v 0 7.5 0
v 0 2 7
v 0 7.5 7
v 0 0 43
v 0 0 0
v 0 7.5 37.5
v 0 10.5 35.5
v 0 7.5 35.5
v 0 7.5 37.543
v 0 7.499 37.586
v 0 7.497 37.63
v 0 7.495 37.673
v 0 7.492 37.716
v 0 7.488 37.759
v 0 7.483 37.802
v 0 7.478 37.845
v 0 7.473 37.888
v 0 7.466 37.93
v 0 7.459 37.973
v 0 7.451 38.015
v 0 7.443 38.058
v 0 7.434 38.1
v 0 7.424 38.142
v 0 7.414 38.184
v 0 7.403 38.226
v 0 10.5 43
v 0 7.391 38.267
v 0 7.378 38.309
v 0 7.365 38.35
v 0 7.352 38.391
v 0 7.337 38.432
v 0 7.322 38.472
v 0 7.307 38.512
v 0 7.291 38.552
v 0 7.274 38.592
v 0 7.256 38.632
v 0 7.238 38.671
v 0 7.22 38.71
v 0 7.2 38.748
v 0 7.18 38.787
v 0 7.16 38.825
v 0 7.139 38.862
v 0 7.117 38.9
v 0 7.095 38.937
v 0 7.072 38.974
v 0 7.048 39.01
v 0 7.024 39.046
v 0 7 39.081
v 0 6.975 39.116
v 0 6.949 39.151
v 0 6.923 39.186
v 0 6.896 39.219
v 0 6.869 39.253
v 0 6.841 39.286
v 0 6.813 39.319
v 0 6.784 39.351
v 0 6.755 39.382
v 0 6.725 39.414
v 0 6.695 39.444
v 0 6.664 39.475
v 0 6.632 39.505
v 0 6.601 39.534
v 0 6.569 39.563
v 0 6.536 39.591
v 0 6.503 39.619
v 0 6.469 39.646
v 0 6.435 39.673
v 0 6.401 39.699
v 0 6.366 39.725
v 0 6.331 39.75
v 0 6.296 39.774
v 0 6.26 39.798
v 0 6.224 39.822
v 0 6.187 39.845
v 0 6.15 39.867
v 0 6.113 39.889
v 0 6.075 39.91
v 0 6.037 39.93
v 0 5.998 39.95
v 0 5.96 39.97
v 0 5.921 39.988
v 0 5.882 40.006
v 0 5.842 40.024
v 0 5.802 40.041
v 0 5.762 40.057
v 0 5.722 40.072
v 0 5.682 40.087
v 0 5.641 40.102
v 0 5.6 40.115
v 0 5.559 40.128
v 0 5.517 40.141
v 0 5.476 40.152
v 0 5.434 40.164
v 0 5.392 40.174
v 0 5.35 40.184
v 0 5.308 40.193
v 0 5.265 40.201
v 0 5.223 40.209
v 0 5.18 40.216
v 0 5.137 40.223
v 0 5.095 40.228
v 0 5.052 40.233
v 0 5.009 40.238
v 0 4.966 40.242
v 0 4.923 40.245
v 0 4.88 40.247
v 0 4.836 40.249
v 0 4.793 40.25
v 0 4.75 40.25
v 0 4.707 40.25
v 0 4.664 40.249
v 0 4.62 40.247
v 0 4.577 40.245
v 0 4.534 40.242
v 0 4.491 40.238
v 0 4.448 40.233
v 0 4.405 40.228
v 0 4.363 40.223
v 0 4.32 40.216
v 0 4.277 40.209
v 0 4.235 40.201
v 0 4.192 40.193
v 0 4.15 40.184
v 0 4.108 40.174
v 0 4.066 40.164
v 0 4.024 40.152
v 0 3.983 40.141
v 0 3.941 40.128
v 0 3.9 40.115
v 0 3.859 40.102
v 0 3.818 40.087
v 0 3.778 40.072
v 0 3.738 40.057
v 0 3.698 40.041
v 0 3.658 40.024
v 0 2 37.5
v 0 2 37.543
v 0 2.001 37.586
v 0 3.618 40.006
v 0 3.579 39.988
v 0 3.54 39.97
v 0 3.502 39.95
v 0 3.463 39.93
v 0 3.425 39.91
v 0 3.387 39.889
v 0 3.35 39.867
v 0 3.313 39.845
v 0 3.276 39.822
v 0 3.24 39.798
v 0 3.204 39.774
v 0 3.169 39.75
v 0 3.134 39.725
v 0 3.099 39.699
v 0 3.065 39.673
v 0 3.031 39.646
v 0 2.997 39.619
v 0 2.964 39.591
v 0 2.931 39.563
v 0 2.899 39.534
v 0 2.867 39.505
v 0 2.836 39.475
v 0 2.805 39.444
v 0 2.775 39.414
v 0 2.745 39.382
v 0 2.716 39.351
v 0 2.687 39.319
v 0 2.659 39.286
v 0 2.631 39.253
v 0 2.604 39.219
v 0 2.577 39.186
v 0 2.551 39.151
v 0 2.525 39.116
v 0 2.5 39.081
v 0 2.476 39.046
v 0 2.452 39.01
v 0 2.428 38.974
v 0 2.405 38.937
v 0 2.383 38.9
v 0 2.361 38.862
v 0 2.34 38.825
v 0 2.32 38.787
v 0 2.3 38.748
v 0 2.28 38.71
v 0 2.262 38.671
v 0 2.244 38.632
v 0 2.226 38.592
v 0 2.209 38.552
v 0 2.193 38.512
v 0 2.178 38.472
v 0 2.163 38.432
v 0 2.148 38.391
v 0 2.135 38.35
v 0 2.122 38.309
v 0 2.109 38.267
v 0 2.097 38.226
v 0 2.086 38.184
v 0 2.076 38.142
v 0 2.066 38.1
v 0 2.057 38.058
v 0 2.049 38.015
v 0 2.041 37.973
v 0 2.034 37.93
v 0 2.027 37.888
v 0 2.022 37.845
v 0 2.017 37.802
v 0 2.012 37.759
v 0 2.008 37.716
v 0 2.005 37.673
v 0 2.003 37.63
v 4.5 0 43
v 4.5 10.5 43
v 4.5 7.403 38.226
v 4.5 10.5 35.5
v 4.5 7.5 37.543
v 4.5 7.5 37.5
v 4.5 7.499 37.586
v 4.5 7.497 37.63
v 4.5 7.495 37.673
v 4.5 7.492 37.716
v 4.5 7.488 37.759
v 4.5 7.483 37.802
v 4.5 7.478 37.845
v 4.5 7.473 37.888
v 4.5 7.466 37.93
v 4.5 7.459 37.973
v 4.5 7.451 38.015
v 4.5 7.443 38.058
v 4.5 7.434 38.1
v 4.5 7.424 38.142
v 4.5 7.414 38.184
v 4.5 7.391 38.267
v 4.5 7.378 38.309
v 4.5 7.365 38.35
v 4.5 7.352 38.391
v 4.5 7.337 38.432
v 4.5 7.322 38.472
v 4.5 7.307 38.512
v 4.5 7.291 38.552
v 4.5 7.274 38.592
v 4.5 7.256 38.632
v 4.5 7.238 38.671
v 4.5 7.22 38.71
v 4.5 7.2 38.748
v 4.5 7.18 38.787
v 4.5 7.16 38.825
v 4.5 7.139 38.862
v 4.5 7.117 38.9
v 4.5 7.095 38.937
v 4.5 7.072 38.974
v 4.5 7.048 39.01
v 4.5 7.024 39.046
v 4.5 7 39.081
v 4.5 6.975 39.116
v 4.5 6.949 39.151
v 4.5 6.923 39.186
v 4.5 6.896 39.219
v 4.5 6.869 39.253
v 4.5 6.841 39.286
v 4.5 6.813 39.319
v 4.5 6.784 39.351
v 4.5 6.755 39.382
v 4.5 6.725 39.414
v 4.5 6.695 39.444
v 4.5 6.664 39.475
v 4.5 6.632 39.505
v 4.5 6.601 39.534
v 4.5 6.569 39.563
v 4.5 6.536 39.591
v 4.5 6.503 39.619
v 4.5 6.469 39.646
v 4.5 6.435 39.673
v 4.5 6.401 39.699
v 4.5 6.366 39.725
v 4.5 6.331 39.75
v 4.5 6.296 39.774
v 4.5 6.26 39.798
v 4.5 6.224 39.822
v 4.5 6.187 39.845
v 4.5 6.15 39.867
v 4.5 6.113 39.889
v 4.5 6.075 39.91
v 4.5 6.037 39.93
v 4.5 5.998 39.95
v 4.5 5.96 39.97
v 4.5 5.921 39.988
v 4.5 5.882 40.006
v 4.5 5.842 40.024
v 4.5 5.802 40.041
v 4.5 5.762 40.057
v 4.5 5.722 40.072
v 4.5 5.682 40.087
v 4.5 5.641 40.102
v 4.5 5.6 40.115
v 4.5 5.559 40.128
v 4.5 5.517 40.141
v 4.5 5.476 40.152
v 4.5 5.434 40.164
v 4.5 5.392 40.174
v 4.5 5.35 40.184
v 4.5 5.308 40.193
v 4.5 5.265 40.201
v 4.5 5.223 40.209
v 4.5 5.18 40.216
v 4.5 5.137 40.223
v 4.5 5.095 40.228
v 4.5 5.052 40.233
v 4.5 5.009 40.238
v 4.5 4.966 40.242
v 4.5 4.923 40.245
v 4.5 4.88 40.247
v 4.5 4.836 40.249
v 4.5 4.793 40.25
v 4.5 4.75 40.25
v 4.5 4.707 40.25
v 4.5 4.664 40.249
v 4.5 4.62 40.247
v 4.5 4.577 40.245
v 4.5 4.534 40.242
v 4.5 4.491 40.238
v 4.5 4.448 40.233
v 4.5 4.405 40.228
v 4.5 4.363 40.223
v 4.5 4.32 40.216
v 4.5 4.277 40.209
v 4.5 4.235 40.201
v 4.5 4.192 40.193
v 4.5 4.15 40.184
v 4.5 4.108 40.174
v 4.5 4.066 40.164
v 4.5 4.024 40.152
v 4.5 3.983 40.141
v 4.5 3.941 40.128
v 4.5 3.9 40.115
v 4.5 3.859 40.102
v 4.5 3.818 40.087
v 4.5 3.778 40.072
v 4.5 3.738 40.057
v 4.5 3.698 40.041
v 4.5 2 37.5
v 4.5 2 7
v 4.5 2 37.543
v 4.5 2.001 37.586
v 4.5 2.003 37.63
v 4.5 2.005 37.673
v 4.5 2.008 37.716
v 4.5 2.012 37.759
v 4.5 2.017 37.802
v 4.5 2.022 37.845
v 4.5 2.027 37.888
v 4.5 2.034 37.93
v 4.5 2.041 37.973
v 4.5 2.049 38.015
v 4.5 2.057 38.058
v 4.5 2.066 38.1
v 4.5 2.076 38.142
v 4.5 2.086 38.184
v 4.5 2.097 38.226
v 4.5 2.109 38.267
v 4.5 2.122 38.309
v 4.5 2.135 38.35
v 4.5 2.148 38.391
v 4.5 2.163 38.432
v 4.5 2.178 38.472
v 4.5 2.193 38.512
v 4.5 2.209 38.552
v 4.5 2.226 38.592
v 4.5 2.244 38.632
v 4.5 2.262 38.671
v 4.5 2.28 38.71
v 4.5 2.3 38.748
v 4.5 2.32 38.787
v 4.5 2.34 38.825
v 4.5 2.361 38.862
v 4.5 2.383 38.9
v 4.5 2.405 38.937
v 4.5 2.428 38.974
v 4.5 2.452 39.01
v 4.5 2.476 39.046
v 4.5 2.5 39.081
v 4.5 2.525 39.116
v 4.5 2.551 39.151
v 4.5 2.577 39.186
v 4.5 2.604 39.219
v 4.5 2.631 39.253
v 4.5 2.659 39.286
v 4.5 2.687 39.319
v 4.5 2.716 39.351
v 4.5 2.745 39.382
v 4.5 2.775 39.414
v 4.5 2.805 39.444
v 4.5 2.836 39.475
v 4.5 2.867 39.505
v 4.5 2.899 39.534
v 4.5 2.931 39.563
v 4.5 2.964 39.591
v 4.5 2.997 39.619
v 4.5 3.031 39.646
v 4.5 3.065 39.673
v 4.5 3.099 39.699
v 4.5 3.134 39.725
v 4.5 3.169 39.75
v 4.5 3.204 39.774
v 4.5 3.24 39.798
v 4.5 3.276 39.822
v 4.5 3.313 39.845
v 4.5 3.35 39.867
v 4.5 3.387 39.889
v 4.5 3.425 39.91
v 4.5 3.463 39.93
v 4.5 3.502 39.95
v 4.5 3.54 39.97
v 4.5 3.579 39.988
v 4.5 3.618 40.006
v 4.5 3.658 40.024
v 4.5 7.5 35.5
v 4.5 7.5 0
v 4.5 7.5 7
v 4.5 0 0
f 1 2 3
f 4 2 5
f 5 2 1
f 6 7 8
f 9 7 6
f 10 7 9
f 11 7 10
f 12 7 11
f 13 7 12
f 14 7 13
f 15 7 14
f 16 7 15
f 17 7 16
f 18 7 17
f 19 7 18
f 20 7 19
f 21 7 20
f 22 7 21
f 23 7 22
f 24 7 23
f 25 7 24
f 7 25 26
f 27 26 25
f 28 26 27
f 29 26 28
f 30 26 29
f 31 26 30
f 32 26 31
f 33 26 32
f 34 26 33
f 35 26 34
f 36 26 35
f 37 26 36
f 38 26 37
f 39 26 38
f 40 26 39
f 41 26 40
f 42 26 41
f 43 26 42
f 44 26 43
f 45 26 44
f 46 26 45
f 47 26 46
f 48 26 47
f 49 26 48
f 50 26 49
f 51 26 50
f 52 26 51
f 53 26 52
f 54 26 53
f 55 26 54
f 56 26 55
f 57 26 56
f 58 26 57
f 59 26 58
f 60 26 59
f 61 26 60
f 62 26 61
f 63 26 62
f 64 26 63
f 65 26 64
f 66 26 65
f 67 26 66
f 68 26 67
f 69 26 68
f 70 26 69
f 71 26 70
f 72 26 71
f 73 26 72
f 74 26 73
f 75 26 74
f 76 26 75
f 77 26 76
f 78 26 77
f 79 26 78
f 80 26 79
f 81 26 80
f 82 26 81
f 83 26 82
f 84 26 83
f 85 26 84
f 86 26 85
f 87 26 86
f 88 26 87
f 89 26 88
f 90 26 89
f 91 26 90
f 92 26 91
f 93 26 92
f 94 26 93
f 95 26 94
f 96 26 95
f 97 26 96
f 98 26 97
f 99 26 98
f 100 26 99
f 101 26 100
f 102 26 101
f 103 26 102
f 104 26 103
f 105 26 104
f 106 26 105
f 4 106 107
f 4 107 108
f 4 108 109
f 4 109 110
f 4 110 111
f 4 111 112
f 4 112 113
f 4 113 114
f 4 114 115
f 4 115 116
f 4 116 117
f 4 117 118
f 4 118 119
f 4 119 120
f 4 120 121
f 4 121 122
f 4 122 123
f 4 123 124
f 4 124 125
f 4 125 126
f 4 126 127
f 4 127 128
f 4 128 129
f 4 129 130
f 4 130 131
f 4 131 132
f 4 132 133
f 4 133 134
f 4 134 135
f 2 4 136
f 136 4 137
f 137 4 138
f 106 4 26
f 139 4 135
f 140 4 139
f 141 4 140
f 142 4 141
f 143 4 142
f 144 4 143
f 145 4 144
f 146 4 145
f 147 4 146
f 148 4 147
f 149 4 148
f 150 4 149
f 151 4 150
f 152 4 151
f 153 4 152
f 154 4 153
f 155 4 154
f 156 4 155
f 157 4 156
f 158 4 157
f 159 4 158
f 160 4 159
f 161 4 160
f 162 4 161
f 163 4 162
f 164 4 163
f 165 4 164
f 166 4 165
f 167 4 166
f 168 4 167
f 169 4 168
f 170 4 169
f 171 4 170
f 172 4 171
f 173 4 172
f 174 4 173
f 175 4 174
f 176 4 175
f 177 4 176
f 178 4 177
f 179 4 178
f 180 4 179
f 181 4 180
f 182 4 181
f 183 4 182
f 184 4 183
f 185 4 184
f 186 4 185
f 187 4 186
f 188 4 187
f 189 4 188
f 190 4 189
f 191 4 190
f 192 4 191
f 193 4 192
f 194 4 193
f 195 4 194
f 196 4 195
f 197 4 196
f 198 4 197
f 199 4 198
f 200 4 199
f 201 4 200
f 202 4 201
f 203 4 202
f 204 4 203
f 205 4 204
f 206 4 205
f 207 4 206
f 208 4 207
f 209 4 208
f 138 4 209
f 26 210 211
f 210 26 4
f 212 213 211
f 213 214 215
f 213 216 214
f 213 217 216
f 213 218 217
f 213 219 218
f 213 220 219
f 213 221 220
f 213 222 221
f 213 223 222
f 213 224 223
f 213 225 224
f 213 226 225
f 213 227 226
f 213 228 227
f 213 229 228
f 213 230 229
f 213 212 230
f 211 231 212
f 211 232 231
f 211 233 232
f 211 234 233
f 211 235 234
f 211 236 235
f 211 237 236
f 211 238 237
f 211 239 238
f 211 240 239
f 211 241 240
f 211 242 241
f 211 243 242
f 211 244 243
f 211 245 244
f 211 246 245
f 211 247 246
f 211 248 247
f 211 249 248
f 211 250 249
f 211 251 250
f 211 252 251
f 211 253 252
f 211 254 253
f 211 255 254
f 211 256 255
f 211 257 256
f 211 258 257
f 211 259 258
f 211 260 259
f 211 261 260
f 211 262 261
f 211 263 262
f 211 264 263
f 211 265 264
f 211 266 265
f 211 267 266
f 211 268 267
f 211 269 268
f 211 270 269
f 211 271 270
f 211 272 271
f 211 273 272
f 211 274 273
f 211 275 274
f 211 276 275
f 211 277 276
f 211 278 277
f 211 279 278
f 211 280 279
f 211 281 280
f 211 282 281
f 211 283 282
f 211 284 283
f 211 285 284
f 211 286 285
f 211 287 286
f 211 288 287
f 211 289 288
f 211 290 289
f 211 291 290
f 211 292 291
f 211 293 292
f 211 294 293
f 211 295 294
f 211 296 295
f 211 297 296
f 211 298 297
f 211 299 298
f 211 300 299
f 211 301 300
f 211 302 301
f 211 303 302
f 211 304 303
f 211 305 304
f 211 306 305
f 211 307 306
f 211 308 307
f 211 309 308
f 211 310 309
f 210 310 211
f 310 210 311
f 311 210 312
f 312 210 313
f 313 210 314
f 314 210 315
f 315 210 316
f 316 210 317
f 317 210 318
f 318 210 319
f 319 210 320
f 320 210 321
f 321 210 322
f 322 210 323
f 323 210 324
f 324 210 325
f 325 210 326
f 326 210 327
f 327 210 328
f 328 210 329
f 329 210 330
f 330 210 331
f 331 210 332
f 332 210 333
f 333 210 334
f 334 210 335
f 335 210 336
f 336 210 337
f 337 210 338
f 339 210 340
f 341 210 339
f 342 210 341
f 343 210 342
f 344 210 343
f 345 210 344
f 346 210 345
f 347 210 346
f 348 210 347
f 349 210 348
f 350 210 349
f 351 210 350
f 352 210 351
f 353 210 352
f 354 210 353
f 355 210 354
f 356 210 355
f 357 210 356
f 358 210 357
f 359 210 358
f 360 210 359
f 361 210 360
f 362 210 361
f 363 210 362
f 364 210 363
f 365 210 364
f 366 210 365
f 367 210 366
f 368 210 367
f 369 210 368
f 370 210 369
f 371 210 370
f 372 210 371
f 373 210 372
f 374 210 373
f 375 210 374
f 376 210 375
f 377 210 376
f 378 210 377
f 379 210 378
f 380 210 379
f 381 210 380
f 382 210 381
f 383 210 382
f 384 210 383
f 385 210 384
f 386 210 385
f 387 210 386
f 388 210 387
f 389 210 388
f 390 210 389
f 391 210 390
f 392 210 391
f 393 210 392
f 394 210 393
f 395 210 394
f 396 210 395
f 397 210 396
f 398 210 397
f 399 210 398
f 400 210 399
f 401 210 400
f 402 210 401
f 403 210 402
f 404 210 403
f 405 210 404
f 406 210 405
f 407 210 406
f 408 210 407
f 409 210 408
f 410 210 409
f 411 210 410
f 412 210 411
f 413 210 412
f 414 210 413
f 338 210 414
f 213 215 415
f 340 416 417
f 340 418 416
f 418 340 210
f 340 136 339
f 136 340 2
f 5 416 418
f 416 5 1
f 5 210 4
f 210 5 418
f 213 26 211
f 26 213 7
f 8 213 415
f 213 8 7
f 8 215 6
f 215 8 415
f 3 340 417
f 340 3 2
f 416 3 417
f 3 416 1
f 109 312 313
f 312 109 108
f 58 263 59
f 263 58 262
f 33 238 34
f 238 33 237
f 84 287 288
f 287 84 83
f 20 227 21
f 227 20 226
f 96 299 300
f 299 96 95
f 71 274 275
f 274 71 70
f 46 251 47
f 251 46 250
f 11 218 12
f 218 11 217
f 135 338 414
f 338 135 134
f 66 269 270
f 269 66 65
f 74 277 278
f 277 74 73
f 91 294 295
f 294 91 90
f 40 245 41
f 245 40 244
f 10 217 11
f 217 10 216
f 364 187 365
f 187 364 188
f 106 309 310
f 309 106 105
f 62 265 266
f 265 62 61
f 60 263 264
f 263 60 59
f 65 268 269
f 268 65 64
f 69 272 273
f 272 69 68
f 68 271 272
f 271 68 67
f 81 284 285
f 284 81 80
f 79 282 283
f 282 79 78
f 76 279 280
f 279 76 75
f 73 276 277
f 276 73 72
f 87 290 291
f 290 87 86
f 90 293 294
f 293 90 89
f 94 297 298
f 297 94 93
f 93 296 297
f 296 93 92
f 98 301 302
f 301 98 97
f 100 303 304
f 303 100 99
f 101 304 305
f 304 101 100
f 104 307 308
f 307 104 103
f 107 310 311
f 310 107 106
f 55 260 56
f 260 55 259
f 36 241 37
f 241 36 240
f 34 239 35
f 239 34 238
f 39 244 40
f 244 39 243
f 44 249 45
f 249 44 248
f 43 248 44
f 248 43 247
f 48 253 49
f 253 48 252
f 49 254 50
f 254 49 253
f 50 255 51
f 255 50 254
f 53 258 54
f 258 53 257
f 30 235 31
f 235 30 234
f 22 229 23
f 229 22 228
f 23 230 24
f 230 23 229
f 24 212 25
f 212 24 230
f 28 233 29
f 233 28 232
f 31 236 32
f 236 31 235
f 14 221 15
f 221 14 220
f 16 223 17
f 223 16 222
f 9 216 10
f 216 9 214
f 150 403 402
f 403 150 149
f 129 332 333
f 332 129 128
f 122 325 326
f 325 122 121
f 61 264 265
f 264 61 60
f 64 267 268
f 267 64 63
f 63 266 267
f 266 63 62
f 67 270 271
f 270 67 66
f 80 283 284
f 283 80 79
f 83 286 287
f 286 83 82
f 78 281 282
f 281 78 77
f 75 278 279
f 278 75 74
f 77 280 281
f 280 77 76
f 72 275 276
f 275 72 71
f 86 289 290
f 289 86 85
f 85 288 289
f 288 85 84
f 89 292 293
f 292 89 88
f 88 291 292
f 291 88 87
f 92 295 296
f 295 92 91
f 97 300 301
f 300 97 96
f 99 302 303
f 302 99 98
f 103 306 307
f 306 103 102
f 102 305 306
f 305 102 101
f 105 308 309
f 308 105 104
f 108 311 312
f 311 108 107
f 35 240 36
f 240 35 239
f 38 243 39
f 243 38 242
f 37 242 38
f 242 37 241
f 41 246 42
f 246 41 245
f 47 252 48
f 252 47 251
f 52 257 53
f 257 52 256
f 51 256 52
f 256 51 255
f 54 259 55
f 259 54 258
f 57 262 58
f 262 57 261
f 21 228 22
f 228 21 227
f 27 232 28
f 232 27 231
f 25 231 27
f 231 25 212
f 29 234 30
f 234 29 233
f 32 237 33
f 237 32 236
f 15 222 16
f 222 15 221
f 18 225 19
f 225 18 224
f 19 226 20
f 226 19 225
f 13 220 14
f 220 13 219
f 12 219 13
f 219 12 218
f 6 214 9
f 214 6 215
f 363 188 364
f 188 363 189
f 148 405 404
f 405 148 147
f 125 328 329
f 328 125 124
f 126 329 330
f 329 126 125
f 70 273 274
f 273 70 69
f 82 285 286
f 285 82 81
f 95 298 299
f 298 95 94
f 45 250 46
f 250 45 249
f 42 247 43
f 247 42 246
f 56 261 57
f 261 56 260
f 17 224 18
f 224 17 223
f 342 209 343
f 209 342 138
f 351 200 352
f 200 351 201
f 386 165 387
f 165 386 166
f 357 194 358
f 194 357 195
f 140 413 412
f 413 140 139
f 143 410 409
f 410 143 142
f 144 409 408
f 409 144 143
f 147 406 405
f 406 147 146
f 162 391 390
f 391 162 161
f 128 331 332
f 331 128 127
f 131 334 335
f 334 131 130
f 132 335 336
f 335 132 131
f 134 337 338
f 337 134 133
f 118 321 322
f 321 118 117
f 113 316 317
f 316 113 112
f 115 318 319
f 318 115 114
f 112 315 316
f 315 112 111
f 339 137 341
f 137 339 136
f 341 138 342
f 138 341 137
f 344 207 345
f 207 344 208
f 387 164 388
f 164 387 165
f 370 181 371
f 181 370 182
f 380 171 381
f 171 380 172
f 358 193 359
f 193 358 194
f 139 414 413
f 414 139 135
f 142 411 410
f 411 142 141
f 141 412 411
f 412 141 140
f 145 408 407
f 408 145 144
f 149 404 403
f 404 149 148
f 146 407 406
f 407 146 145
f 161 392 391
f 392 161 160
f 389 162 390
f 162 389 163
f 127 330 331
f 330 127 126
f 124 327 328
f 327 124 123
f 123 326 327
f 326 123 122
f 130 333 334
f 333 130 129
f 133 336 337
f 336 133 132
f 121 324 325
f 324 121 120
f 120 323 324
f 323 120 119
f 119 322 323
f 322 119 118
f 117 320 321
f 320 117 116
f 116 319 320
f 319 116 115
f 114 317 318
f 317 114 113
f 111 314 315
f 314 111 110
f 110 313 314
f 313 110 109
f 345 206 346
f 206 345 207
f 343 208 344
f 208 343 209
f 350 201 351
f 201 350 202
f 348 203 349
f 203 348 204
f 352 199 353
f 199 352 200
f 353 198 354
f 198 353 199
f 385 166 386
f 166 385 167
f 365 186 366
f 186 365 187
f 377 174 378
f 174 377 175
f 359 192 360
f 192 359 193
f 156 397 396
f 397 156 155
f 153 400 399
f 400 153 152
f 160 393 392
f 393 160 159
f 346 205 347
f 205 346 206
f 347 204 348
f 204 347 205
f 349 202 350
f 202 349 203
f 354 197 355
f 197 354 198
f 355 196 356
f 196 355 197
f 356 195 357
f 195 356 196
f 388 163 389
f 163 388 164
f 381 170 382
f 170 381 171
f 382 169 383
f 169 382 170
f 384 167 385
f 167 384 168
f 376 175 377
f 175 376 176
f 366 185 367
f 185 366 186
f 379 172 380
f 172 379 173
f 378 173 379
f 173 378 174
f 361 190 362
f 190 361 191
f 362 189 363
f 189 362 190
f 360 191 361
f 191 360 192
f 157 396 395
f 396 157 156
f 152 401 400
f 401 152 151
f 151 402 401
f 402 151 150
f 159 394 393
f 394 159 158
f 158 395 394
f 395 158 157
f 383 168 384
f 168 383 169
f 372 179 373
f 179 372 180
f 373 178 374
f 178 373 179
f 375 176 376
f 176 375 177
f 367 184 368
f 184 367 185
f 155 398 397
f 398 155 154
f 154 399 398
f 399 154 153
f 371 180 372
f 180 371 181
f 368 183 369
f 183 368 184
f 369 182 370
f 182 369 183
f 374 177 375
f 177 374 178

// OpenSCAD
$fn=400;

sh_height=43;
sh_width=4.5;
sh_hanger_spacing=5.5;
sh_material_size=2;
sh_short_tail=2;

module ikea_skadis_holder() {
    difference() {
        union() {
            //Vertical wall
            color("green")
            cube([sh_width,sh_material_size,sh_height]);
            
            // Retainer
            color("blue")
            translate([0,0,sh_height-sh_hanger_spacing])
            cube([sh_width,sh_hanger_spacing+sh_material_size*2+1,sh_hanger_spacing]);
            
            //Vertical wall (short)
            color("cyan")
            translate([0, sh_hanger_spacing+sh_material_size,sh_height-sh_short_tail-sh_hanger_spacing])
            cube([sh_width,sh_material_size+1,sh_short_tail]);

            //Schnöpsel
            color("yellow")
            translate([0, sh_material_size,0])
            cube([sh_width,sh_hanger_spacing,7]);
        }
        
        
    color("red")
    translate([-1,sh_material_size+sh_hanger_spacing/2,sh_height-sh_hanger_spacing])
    rotate([0,90,0])
    cylinder(sh_width+2, sh_hanger_spacing/2, sh_hanger_spacing/2);
        
    }
}
ikea_skadis_holder();
